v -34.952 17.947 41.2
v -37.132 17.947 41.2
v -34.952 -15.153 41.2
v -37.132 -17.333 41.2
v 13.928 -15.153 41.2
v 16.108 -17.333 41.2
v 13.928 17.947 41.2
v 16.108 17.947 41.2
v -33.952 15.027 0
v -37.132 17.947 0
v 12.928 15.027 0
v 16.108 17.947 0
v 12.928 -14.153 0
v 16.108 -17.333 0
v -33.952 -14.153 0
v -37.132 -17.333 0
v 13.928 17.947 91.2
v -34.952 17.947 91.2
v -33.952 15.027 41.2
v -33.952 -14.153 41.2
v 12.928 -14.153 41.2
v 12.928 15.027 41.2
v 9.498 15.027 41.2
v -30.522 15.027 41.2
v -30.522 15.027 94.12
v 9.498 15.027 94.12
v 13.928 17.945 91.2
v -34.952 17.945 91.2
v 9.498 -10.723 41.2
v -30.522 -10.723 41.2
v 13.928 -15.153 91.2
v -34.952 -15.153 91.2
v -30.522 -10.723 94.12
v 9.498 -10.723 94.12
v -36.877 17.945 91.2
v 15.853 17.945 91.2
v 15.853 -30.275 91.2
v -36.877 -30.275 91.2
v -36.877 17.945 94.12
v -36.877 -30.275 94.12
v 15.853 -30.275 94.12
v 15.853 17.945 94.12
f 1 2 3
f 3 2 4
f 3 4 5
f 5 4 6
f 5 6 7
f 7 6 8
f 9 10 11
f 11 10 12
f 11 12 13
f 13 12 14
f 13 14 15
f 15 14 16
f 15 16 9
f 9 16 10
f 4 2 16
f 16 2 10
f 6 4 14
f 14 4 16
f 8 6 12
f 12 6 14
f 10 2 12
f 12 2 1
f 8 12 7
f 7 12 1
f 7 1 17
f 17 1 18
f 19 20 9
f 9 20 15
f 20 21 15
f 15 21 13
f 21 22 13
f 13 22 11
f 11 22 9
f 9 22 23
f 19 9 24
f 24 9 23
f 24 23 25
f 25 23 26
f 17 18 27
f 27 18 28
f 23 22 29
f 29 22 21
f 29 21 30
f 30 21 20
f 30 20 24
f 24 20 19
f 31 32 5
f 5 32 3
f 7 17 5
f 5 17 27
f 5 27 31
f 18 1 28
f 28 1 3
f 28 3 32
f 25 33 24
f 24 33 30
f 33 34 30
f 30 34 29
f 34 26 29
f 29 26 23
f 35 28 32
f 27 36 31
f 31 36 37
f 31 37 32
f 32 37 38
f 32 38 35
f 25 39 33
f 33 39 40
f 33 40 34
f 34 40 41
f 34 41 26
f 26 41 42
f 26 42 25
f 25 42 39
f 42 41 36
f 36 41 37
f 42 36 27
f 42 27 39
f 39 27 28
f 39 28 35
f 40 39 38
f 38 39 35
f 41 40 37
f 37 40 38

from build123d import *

# Parameters (mm, degrees)
CROQUIS1_W               = 53.24
CROQUIS1_H               = 35.28
CROQUIS1_W_2             = 46.88
CROQUIS1_H_2             = 29.18
SALIENTE_EXTRUIR2_DEPTH  = 41.2
CROQUIS3_W               = 48.88
CROQUIS3_H               = 33.1
CROQUIS3_W_2             = 40.02
CROQUIS3_H_2             = 25.75
SALIENTE_EXTRUIR11_DEPTH = 50
CROQUIS15_W              = 52.73
CROQUIS15_H              = 48.22
CROQUIS15_W_2            = 40.02
CROQUIS15_H_2            = 25.75
SALIENTE_EXTRUIR13_DEPTH = 2.92


with BuildPart() as part:
    # Croquis1 → Saliente-Extruir2 (new body)
    with BuildSketch(Plane.XY):
        with Locations((-10.511813518, 0.307314635)):
            Rectangle(CROQUIS1_W, CROQUIS1_H)
        with Locations((-10.511813518, 0.437314635)):
            Rectangle(CROQUIS1_W_2, CROQUIS1_H_2, mode=Mode.SUBTRACT)
    extrude(amount=SALIENTE_EXTRUIR2_DEPTH)

    # Croquis3 → Saliente-Extruir11 (add)
    with BuildSketch(Plane.XY.offset(41.2)):
        with Locations((-10.511813518, 1.397314635)):
            Rectangle(CROQUIS3_W, CROQUIS3_H)
        with Locations((-10.511813518, 2.152314635)):
            Rectangle(CROQUIS3_W_2, CROQUIS3_H_2, mode=Mode.SUBTRACT)
    extrude(amount=SALIENTE_EXTRUIR11_DEPTH)

    # Croquis15 → Saliente-Extruir13 (add)
    with BuildSketch(Plane.XY.offset(91.2)):
        with Locations((-10.511813518, -6.164685365)):
            Rectangle(CROQUIS15_W, CROQUIS15_H)
        with Locations((-10.511813518, 2.152314635)):
            Rectangle(CROQUIS15_W_2, CROQUIS15_H_2, mode=Mode.SUBTRACT)
    extrude(amount=SALIENTE_EXTRUIR13_DEPTH)


solid = part.part
